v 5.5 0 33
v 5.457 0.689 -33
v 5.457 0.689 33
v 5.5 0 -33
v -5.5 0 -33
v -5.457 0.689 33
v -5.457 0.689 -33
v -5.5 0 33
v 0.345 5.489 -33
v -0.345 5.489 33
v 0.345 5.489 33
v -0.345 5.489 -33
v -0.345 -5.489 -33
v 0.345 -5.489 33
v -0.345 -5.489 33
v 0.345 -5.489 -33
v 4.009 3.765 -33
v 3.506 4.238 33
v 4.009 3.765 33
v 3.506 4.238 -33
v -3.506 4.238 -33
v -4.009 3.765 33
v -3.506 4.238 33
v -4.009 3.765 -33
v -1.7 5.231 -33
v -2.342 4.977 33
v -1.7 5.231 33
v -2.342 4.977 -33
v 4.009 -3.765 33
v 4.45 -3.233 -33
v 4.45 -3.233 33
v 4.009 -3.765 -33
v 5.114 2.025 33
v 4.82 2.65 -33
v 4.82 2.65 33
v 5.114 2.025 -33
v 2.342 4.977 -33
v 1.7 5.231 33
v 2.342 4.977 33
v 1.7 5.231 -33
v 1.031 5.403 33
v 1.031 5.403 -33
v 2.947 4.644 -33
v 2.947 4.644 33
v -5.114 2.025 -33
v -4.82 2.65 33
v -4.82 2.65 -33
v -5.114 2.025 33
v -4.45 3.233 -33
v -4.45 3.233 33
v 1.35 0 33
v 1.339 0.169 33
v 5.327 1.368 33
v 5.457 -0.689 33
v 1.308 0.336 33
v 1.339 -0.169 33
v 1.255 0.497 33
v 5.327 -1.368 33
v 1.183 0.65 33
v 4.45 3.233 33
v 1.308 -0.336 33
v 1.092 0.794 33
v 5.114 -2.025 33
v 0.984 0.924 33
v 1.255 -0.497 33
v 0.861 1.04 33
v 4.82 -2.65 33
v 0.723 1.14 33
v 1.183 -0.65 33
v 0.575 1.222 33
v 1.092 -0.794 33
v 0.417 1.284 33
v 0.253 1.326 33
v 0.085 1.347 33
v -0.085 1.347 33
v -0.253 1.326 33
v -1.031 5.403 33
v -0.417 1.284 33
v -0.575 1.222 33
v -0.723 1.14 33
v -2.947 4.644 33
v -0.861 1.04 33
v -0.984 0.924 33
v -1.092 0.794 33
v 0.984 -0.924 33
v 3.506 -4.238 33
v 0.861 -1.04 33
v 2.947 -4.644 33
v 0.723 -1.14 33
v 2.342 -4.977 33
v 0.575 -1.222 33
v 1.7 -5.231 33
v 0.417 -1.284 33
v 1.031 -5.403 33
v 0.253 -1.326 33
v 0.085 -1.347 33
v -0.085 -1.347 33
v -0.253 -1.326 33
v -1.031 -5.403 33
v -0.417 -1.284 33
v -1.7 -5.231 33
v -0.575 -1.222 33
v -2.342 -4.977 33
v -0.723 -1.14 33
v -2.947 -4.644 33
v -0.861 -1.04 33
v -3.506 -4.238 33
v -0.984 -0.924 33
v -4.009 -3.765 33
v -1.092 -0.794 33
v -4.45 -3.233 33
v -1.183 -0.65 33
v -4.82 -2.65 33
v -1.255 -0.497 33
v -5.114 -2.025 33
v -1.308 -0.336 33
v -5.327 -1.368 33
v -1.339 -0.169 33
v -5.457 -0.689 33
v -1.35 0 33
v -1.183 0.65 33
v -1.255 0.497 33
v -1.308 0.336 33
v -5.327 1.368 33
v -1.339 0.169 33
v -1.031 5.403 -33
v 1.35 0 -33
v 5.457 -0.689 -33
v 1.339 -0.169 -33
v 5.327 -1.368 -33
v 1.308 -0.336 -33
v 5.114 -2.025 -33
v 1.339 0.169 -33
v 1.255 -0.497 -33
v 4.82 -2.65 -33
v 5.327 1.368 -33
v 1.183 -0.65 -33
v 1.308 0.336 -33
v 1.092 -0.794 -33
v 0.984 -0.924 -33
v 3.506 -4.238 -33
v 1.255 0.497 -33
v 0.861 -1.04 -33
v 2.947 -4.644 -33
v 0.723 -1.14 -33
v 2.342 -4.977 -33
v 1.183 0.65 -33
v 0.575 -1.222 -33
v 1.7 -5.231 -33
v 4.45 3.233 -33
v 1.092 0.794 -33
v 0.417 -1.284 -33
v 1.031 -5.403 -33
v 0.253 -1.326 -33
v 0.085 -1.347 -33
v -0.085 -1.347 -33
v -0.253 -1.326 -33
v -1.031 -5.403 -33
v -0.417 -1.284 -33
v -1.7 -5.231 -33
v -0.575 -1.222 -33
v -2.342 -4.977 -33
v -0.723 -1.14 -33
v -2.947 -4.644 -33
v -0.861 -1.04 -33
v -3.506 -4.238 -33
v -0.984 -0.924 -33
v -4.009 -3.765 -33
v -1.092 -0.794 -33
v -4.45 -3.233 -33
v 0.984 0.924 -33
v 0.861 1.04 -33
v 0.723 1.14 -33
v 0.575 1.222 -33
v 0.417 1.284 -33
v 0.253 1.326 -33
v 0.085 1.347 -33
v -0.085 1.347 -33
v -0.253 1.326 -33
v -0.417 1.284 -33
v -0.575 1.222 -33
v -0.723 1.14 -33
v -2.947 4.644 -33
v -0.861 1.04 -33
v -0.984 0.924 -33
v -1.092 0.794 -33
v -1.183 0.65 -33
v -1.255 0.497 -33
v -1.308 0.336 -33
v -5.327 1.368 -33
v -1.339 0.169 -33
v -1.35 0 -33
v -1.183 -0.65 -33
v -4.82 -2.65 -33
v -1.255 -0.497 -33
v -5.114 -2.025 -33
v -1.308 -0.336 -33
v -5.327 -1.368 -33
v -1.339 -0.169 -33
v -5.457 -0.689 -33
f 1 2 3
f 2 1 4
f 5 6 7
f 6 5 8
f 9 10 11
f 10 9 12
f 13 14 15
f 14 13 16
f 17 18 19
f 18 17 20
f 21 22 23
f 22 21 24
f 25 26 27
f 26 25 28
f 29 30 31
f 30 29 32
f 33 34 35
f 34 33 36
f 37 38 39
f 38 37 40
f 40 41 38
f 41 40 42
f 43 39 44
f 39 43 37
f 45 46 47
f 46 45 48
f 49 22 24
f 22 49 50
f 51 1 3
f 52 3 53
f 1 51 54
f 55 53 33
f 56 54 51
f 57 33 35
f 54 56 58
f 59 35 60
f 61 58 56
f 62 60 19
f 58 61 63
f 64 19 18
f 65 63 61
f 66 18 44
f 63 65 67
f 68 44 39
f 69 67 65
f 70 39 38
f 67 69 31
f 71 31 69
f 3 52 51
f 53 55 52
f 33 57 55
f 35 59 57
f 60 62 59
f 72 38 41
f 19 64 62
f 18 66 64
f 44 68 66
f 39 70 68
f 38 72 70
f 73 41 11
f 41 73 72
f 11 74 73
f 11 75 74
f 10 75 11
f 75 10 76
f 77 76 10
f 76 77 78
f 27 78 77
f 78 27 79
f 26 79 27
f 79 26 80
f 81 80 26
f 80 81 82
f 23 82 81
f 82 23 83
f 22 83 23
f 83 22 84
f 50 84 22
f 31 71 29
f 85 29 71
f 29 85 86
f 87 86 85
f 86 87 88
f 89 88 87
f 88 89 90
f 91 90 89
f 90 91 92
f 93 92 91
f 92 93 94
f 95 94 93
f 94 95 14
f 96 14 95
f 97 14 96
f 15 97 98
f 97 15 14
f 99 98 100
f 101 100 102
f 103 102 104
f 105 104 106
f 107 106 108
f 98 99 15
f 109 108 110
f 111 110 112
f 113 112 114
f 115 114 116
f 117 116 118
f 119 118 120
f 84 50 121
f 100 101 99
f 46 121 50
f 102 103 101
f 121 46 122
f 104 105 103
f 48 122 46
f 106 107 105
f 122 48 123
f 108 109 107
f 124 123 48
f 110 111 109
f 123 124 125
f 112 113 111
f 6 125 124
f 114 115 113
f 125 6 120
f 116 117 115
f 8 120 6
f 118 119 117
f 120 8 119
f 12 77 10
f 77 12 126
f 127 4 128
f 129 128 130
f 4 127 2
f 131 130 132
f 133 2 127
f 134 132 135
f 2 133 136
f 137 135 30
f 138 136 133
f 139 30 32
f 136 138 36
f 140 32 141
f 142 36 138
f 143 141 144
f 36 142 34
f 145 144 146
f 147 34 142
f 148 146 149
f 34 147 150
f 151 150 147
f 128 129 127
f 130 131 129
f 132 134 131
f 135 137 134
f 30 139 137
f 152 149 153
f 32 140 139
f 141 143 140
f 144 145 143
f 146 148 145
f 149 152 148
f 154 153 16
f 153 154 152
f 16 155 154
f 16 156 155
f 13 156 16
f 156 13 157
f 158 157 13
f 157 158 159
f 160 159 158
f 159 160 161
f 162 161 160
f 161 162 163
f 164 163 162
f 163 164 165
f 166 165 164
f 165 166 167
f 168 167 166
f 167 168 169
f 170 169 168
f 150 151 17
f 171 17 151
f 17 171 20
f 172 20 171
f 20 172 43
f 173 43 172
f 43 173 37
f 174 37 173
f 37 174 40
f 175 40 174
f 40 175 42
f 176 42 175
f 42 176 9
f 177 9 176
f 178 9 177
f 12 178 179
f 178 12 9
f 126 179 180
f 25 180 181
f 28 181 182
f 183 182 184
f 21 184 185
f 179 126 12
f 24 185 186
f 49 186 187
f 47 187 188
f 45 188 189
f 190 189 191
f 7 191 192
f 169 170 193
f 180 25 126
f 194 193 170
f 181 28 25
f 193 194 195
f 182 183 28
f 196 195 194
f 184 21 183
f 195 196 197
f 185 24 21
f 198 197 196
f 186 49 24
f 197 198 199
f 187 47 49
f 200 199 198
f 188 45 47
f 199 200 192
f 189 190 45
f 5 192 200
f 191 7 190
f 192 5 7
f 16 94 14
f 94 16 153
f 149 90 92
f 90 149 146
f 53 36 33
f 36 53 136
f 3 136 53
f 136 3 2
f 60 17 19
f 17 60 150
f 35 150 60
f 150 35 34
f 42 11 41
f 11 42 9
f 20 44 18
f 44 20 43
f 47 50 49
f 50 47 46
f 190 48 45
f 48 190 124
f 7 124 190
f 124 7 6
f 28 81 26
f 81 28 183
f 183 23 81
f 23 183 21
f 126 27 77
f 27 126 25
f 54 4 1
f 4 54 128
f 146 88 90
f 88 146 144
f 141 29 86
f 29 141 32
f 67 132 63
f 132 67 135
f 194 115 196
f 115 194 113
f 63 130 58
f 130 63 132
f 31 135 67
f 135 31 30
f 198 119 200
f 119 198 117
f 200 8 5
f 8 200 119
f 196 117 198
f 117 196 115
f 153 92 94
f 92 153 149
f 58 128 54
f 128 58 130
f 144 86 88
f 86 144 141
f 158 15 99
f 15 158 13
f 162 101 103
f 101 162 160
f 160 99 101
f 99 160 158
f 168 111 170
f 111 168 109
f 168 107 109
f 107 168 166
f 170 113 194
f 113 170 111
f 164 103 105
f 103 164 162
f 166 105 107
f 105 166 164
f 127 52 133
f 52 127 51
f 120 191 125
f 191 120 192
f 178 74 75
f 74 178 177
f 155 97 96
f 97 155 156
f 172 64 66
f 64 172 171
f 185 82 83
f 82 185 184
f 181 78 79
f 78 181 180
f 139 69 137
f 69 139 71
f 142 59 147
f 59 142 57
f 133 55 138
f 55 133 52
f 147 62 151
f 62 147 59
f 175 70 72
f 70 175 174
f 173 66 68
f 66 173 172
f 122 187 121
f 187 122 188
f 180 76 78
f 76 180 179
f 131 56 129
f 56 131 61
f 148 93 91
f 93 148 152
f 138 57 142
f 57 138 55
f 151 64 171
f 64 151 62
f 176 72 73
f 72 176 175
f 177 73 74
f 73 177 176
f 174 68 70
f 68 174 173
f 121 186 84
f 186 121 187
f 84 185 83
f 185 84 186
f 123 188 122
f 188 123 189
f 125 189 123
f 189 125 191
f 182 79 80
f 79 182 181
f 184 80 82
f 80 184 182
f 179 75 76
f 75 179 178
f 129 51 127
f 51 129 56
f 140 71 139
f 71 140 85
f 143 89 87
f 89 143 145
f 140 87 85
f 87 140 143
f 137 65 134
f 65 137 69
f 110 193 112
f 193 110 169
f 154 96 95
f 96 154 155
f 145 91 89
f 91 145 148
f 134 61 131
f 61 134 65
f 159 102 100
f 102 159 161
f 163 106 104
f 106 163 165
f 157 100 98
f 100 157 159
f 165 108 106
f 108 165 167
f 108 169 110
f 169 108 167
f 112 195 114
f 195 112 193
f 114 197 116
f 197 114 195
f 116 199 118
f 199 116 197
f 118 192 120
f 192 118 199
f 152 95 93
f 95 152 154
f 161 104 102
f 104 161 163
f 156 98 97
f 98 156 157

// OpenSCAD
$fn = 50;


difference() {
	union() {
		translate(v = [0, 0, -33.0000000000]) {
			cylinder(h = 66, r = 5.5000000000);
		}
	}
	union() {
		translate(v = [0, 0, -100.0000000000]) {
			cylinder(h = 200, r = 1.3500000000);
		}
	}
}
